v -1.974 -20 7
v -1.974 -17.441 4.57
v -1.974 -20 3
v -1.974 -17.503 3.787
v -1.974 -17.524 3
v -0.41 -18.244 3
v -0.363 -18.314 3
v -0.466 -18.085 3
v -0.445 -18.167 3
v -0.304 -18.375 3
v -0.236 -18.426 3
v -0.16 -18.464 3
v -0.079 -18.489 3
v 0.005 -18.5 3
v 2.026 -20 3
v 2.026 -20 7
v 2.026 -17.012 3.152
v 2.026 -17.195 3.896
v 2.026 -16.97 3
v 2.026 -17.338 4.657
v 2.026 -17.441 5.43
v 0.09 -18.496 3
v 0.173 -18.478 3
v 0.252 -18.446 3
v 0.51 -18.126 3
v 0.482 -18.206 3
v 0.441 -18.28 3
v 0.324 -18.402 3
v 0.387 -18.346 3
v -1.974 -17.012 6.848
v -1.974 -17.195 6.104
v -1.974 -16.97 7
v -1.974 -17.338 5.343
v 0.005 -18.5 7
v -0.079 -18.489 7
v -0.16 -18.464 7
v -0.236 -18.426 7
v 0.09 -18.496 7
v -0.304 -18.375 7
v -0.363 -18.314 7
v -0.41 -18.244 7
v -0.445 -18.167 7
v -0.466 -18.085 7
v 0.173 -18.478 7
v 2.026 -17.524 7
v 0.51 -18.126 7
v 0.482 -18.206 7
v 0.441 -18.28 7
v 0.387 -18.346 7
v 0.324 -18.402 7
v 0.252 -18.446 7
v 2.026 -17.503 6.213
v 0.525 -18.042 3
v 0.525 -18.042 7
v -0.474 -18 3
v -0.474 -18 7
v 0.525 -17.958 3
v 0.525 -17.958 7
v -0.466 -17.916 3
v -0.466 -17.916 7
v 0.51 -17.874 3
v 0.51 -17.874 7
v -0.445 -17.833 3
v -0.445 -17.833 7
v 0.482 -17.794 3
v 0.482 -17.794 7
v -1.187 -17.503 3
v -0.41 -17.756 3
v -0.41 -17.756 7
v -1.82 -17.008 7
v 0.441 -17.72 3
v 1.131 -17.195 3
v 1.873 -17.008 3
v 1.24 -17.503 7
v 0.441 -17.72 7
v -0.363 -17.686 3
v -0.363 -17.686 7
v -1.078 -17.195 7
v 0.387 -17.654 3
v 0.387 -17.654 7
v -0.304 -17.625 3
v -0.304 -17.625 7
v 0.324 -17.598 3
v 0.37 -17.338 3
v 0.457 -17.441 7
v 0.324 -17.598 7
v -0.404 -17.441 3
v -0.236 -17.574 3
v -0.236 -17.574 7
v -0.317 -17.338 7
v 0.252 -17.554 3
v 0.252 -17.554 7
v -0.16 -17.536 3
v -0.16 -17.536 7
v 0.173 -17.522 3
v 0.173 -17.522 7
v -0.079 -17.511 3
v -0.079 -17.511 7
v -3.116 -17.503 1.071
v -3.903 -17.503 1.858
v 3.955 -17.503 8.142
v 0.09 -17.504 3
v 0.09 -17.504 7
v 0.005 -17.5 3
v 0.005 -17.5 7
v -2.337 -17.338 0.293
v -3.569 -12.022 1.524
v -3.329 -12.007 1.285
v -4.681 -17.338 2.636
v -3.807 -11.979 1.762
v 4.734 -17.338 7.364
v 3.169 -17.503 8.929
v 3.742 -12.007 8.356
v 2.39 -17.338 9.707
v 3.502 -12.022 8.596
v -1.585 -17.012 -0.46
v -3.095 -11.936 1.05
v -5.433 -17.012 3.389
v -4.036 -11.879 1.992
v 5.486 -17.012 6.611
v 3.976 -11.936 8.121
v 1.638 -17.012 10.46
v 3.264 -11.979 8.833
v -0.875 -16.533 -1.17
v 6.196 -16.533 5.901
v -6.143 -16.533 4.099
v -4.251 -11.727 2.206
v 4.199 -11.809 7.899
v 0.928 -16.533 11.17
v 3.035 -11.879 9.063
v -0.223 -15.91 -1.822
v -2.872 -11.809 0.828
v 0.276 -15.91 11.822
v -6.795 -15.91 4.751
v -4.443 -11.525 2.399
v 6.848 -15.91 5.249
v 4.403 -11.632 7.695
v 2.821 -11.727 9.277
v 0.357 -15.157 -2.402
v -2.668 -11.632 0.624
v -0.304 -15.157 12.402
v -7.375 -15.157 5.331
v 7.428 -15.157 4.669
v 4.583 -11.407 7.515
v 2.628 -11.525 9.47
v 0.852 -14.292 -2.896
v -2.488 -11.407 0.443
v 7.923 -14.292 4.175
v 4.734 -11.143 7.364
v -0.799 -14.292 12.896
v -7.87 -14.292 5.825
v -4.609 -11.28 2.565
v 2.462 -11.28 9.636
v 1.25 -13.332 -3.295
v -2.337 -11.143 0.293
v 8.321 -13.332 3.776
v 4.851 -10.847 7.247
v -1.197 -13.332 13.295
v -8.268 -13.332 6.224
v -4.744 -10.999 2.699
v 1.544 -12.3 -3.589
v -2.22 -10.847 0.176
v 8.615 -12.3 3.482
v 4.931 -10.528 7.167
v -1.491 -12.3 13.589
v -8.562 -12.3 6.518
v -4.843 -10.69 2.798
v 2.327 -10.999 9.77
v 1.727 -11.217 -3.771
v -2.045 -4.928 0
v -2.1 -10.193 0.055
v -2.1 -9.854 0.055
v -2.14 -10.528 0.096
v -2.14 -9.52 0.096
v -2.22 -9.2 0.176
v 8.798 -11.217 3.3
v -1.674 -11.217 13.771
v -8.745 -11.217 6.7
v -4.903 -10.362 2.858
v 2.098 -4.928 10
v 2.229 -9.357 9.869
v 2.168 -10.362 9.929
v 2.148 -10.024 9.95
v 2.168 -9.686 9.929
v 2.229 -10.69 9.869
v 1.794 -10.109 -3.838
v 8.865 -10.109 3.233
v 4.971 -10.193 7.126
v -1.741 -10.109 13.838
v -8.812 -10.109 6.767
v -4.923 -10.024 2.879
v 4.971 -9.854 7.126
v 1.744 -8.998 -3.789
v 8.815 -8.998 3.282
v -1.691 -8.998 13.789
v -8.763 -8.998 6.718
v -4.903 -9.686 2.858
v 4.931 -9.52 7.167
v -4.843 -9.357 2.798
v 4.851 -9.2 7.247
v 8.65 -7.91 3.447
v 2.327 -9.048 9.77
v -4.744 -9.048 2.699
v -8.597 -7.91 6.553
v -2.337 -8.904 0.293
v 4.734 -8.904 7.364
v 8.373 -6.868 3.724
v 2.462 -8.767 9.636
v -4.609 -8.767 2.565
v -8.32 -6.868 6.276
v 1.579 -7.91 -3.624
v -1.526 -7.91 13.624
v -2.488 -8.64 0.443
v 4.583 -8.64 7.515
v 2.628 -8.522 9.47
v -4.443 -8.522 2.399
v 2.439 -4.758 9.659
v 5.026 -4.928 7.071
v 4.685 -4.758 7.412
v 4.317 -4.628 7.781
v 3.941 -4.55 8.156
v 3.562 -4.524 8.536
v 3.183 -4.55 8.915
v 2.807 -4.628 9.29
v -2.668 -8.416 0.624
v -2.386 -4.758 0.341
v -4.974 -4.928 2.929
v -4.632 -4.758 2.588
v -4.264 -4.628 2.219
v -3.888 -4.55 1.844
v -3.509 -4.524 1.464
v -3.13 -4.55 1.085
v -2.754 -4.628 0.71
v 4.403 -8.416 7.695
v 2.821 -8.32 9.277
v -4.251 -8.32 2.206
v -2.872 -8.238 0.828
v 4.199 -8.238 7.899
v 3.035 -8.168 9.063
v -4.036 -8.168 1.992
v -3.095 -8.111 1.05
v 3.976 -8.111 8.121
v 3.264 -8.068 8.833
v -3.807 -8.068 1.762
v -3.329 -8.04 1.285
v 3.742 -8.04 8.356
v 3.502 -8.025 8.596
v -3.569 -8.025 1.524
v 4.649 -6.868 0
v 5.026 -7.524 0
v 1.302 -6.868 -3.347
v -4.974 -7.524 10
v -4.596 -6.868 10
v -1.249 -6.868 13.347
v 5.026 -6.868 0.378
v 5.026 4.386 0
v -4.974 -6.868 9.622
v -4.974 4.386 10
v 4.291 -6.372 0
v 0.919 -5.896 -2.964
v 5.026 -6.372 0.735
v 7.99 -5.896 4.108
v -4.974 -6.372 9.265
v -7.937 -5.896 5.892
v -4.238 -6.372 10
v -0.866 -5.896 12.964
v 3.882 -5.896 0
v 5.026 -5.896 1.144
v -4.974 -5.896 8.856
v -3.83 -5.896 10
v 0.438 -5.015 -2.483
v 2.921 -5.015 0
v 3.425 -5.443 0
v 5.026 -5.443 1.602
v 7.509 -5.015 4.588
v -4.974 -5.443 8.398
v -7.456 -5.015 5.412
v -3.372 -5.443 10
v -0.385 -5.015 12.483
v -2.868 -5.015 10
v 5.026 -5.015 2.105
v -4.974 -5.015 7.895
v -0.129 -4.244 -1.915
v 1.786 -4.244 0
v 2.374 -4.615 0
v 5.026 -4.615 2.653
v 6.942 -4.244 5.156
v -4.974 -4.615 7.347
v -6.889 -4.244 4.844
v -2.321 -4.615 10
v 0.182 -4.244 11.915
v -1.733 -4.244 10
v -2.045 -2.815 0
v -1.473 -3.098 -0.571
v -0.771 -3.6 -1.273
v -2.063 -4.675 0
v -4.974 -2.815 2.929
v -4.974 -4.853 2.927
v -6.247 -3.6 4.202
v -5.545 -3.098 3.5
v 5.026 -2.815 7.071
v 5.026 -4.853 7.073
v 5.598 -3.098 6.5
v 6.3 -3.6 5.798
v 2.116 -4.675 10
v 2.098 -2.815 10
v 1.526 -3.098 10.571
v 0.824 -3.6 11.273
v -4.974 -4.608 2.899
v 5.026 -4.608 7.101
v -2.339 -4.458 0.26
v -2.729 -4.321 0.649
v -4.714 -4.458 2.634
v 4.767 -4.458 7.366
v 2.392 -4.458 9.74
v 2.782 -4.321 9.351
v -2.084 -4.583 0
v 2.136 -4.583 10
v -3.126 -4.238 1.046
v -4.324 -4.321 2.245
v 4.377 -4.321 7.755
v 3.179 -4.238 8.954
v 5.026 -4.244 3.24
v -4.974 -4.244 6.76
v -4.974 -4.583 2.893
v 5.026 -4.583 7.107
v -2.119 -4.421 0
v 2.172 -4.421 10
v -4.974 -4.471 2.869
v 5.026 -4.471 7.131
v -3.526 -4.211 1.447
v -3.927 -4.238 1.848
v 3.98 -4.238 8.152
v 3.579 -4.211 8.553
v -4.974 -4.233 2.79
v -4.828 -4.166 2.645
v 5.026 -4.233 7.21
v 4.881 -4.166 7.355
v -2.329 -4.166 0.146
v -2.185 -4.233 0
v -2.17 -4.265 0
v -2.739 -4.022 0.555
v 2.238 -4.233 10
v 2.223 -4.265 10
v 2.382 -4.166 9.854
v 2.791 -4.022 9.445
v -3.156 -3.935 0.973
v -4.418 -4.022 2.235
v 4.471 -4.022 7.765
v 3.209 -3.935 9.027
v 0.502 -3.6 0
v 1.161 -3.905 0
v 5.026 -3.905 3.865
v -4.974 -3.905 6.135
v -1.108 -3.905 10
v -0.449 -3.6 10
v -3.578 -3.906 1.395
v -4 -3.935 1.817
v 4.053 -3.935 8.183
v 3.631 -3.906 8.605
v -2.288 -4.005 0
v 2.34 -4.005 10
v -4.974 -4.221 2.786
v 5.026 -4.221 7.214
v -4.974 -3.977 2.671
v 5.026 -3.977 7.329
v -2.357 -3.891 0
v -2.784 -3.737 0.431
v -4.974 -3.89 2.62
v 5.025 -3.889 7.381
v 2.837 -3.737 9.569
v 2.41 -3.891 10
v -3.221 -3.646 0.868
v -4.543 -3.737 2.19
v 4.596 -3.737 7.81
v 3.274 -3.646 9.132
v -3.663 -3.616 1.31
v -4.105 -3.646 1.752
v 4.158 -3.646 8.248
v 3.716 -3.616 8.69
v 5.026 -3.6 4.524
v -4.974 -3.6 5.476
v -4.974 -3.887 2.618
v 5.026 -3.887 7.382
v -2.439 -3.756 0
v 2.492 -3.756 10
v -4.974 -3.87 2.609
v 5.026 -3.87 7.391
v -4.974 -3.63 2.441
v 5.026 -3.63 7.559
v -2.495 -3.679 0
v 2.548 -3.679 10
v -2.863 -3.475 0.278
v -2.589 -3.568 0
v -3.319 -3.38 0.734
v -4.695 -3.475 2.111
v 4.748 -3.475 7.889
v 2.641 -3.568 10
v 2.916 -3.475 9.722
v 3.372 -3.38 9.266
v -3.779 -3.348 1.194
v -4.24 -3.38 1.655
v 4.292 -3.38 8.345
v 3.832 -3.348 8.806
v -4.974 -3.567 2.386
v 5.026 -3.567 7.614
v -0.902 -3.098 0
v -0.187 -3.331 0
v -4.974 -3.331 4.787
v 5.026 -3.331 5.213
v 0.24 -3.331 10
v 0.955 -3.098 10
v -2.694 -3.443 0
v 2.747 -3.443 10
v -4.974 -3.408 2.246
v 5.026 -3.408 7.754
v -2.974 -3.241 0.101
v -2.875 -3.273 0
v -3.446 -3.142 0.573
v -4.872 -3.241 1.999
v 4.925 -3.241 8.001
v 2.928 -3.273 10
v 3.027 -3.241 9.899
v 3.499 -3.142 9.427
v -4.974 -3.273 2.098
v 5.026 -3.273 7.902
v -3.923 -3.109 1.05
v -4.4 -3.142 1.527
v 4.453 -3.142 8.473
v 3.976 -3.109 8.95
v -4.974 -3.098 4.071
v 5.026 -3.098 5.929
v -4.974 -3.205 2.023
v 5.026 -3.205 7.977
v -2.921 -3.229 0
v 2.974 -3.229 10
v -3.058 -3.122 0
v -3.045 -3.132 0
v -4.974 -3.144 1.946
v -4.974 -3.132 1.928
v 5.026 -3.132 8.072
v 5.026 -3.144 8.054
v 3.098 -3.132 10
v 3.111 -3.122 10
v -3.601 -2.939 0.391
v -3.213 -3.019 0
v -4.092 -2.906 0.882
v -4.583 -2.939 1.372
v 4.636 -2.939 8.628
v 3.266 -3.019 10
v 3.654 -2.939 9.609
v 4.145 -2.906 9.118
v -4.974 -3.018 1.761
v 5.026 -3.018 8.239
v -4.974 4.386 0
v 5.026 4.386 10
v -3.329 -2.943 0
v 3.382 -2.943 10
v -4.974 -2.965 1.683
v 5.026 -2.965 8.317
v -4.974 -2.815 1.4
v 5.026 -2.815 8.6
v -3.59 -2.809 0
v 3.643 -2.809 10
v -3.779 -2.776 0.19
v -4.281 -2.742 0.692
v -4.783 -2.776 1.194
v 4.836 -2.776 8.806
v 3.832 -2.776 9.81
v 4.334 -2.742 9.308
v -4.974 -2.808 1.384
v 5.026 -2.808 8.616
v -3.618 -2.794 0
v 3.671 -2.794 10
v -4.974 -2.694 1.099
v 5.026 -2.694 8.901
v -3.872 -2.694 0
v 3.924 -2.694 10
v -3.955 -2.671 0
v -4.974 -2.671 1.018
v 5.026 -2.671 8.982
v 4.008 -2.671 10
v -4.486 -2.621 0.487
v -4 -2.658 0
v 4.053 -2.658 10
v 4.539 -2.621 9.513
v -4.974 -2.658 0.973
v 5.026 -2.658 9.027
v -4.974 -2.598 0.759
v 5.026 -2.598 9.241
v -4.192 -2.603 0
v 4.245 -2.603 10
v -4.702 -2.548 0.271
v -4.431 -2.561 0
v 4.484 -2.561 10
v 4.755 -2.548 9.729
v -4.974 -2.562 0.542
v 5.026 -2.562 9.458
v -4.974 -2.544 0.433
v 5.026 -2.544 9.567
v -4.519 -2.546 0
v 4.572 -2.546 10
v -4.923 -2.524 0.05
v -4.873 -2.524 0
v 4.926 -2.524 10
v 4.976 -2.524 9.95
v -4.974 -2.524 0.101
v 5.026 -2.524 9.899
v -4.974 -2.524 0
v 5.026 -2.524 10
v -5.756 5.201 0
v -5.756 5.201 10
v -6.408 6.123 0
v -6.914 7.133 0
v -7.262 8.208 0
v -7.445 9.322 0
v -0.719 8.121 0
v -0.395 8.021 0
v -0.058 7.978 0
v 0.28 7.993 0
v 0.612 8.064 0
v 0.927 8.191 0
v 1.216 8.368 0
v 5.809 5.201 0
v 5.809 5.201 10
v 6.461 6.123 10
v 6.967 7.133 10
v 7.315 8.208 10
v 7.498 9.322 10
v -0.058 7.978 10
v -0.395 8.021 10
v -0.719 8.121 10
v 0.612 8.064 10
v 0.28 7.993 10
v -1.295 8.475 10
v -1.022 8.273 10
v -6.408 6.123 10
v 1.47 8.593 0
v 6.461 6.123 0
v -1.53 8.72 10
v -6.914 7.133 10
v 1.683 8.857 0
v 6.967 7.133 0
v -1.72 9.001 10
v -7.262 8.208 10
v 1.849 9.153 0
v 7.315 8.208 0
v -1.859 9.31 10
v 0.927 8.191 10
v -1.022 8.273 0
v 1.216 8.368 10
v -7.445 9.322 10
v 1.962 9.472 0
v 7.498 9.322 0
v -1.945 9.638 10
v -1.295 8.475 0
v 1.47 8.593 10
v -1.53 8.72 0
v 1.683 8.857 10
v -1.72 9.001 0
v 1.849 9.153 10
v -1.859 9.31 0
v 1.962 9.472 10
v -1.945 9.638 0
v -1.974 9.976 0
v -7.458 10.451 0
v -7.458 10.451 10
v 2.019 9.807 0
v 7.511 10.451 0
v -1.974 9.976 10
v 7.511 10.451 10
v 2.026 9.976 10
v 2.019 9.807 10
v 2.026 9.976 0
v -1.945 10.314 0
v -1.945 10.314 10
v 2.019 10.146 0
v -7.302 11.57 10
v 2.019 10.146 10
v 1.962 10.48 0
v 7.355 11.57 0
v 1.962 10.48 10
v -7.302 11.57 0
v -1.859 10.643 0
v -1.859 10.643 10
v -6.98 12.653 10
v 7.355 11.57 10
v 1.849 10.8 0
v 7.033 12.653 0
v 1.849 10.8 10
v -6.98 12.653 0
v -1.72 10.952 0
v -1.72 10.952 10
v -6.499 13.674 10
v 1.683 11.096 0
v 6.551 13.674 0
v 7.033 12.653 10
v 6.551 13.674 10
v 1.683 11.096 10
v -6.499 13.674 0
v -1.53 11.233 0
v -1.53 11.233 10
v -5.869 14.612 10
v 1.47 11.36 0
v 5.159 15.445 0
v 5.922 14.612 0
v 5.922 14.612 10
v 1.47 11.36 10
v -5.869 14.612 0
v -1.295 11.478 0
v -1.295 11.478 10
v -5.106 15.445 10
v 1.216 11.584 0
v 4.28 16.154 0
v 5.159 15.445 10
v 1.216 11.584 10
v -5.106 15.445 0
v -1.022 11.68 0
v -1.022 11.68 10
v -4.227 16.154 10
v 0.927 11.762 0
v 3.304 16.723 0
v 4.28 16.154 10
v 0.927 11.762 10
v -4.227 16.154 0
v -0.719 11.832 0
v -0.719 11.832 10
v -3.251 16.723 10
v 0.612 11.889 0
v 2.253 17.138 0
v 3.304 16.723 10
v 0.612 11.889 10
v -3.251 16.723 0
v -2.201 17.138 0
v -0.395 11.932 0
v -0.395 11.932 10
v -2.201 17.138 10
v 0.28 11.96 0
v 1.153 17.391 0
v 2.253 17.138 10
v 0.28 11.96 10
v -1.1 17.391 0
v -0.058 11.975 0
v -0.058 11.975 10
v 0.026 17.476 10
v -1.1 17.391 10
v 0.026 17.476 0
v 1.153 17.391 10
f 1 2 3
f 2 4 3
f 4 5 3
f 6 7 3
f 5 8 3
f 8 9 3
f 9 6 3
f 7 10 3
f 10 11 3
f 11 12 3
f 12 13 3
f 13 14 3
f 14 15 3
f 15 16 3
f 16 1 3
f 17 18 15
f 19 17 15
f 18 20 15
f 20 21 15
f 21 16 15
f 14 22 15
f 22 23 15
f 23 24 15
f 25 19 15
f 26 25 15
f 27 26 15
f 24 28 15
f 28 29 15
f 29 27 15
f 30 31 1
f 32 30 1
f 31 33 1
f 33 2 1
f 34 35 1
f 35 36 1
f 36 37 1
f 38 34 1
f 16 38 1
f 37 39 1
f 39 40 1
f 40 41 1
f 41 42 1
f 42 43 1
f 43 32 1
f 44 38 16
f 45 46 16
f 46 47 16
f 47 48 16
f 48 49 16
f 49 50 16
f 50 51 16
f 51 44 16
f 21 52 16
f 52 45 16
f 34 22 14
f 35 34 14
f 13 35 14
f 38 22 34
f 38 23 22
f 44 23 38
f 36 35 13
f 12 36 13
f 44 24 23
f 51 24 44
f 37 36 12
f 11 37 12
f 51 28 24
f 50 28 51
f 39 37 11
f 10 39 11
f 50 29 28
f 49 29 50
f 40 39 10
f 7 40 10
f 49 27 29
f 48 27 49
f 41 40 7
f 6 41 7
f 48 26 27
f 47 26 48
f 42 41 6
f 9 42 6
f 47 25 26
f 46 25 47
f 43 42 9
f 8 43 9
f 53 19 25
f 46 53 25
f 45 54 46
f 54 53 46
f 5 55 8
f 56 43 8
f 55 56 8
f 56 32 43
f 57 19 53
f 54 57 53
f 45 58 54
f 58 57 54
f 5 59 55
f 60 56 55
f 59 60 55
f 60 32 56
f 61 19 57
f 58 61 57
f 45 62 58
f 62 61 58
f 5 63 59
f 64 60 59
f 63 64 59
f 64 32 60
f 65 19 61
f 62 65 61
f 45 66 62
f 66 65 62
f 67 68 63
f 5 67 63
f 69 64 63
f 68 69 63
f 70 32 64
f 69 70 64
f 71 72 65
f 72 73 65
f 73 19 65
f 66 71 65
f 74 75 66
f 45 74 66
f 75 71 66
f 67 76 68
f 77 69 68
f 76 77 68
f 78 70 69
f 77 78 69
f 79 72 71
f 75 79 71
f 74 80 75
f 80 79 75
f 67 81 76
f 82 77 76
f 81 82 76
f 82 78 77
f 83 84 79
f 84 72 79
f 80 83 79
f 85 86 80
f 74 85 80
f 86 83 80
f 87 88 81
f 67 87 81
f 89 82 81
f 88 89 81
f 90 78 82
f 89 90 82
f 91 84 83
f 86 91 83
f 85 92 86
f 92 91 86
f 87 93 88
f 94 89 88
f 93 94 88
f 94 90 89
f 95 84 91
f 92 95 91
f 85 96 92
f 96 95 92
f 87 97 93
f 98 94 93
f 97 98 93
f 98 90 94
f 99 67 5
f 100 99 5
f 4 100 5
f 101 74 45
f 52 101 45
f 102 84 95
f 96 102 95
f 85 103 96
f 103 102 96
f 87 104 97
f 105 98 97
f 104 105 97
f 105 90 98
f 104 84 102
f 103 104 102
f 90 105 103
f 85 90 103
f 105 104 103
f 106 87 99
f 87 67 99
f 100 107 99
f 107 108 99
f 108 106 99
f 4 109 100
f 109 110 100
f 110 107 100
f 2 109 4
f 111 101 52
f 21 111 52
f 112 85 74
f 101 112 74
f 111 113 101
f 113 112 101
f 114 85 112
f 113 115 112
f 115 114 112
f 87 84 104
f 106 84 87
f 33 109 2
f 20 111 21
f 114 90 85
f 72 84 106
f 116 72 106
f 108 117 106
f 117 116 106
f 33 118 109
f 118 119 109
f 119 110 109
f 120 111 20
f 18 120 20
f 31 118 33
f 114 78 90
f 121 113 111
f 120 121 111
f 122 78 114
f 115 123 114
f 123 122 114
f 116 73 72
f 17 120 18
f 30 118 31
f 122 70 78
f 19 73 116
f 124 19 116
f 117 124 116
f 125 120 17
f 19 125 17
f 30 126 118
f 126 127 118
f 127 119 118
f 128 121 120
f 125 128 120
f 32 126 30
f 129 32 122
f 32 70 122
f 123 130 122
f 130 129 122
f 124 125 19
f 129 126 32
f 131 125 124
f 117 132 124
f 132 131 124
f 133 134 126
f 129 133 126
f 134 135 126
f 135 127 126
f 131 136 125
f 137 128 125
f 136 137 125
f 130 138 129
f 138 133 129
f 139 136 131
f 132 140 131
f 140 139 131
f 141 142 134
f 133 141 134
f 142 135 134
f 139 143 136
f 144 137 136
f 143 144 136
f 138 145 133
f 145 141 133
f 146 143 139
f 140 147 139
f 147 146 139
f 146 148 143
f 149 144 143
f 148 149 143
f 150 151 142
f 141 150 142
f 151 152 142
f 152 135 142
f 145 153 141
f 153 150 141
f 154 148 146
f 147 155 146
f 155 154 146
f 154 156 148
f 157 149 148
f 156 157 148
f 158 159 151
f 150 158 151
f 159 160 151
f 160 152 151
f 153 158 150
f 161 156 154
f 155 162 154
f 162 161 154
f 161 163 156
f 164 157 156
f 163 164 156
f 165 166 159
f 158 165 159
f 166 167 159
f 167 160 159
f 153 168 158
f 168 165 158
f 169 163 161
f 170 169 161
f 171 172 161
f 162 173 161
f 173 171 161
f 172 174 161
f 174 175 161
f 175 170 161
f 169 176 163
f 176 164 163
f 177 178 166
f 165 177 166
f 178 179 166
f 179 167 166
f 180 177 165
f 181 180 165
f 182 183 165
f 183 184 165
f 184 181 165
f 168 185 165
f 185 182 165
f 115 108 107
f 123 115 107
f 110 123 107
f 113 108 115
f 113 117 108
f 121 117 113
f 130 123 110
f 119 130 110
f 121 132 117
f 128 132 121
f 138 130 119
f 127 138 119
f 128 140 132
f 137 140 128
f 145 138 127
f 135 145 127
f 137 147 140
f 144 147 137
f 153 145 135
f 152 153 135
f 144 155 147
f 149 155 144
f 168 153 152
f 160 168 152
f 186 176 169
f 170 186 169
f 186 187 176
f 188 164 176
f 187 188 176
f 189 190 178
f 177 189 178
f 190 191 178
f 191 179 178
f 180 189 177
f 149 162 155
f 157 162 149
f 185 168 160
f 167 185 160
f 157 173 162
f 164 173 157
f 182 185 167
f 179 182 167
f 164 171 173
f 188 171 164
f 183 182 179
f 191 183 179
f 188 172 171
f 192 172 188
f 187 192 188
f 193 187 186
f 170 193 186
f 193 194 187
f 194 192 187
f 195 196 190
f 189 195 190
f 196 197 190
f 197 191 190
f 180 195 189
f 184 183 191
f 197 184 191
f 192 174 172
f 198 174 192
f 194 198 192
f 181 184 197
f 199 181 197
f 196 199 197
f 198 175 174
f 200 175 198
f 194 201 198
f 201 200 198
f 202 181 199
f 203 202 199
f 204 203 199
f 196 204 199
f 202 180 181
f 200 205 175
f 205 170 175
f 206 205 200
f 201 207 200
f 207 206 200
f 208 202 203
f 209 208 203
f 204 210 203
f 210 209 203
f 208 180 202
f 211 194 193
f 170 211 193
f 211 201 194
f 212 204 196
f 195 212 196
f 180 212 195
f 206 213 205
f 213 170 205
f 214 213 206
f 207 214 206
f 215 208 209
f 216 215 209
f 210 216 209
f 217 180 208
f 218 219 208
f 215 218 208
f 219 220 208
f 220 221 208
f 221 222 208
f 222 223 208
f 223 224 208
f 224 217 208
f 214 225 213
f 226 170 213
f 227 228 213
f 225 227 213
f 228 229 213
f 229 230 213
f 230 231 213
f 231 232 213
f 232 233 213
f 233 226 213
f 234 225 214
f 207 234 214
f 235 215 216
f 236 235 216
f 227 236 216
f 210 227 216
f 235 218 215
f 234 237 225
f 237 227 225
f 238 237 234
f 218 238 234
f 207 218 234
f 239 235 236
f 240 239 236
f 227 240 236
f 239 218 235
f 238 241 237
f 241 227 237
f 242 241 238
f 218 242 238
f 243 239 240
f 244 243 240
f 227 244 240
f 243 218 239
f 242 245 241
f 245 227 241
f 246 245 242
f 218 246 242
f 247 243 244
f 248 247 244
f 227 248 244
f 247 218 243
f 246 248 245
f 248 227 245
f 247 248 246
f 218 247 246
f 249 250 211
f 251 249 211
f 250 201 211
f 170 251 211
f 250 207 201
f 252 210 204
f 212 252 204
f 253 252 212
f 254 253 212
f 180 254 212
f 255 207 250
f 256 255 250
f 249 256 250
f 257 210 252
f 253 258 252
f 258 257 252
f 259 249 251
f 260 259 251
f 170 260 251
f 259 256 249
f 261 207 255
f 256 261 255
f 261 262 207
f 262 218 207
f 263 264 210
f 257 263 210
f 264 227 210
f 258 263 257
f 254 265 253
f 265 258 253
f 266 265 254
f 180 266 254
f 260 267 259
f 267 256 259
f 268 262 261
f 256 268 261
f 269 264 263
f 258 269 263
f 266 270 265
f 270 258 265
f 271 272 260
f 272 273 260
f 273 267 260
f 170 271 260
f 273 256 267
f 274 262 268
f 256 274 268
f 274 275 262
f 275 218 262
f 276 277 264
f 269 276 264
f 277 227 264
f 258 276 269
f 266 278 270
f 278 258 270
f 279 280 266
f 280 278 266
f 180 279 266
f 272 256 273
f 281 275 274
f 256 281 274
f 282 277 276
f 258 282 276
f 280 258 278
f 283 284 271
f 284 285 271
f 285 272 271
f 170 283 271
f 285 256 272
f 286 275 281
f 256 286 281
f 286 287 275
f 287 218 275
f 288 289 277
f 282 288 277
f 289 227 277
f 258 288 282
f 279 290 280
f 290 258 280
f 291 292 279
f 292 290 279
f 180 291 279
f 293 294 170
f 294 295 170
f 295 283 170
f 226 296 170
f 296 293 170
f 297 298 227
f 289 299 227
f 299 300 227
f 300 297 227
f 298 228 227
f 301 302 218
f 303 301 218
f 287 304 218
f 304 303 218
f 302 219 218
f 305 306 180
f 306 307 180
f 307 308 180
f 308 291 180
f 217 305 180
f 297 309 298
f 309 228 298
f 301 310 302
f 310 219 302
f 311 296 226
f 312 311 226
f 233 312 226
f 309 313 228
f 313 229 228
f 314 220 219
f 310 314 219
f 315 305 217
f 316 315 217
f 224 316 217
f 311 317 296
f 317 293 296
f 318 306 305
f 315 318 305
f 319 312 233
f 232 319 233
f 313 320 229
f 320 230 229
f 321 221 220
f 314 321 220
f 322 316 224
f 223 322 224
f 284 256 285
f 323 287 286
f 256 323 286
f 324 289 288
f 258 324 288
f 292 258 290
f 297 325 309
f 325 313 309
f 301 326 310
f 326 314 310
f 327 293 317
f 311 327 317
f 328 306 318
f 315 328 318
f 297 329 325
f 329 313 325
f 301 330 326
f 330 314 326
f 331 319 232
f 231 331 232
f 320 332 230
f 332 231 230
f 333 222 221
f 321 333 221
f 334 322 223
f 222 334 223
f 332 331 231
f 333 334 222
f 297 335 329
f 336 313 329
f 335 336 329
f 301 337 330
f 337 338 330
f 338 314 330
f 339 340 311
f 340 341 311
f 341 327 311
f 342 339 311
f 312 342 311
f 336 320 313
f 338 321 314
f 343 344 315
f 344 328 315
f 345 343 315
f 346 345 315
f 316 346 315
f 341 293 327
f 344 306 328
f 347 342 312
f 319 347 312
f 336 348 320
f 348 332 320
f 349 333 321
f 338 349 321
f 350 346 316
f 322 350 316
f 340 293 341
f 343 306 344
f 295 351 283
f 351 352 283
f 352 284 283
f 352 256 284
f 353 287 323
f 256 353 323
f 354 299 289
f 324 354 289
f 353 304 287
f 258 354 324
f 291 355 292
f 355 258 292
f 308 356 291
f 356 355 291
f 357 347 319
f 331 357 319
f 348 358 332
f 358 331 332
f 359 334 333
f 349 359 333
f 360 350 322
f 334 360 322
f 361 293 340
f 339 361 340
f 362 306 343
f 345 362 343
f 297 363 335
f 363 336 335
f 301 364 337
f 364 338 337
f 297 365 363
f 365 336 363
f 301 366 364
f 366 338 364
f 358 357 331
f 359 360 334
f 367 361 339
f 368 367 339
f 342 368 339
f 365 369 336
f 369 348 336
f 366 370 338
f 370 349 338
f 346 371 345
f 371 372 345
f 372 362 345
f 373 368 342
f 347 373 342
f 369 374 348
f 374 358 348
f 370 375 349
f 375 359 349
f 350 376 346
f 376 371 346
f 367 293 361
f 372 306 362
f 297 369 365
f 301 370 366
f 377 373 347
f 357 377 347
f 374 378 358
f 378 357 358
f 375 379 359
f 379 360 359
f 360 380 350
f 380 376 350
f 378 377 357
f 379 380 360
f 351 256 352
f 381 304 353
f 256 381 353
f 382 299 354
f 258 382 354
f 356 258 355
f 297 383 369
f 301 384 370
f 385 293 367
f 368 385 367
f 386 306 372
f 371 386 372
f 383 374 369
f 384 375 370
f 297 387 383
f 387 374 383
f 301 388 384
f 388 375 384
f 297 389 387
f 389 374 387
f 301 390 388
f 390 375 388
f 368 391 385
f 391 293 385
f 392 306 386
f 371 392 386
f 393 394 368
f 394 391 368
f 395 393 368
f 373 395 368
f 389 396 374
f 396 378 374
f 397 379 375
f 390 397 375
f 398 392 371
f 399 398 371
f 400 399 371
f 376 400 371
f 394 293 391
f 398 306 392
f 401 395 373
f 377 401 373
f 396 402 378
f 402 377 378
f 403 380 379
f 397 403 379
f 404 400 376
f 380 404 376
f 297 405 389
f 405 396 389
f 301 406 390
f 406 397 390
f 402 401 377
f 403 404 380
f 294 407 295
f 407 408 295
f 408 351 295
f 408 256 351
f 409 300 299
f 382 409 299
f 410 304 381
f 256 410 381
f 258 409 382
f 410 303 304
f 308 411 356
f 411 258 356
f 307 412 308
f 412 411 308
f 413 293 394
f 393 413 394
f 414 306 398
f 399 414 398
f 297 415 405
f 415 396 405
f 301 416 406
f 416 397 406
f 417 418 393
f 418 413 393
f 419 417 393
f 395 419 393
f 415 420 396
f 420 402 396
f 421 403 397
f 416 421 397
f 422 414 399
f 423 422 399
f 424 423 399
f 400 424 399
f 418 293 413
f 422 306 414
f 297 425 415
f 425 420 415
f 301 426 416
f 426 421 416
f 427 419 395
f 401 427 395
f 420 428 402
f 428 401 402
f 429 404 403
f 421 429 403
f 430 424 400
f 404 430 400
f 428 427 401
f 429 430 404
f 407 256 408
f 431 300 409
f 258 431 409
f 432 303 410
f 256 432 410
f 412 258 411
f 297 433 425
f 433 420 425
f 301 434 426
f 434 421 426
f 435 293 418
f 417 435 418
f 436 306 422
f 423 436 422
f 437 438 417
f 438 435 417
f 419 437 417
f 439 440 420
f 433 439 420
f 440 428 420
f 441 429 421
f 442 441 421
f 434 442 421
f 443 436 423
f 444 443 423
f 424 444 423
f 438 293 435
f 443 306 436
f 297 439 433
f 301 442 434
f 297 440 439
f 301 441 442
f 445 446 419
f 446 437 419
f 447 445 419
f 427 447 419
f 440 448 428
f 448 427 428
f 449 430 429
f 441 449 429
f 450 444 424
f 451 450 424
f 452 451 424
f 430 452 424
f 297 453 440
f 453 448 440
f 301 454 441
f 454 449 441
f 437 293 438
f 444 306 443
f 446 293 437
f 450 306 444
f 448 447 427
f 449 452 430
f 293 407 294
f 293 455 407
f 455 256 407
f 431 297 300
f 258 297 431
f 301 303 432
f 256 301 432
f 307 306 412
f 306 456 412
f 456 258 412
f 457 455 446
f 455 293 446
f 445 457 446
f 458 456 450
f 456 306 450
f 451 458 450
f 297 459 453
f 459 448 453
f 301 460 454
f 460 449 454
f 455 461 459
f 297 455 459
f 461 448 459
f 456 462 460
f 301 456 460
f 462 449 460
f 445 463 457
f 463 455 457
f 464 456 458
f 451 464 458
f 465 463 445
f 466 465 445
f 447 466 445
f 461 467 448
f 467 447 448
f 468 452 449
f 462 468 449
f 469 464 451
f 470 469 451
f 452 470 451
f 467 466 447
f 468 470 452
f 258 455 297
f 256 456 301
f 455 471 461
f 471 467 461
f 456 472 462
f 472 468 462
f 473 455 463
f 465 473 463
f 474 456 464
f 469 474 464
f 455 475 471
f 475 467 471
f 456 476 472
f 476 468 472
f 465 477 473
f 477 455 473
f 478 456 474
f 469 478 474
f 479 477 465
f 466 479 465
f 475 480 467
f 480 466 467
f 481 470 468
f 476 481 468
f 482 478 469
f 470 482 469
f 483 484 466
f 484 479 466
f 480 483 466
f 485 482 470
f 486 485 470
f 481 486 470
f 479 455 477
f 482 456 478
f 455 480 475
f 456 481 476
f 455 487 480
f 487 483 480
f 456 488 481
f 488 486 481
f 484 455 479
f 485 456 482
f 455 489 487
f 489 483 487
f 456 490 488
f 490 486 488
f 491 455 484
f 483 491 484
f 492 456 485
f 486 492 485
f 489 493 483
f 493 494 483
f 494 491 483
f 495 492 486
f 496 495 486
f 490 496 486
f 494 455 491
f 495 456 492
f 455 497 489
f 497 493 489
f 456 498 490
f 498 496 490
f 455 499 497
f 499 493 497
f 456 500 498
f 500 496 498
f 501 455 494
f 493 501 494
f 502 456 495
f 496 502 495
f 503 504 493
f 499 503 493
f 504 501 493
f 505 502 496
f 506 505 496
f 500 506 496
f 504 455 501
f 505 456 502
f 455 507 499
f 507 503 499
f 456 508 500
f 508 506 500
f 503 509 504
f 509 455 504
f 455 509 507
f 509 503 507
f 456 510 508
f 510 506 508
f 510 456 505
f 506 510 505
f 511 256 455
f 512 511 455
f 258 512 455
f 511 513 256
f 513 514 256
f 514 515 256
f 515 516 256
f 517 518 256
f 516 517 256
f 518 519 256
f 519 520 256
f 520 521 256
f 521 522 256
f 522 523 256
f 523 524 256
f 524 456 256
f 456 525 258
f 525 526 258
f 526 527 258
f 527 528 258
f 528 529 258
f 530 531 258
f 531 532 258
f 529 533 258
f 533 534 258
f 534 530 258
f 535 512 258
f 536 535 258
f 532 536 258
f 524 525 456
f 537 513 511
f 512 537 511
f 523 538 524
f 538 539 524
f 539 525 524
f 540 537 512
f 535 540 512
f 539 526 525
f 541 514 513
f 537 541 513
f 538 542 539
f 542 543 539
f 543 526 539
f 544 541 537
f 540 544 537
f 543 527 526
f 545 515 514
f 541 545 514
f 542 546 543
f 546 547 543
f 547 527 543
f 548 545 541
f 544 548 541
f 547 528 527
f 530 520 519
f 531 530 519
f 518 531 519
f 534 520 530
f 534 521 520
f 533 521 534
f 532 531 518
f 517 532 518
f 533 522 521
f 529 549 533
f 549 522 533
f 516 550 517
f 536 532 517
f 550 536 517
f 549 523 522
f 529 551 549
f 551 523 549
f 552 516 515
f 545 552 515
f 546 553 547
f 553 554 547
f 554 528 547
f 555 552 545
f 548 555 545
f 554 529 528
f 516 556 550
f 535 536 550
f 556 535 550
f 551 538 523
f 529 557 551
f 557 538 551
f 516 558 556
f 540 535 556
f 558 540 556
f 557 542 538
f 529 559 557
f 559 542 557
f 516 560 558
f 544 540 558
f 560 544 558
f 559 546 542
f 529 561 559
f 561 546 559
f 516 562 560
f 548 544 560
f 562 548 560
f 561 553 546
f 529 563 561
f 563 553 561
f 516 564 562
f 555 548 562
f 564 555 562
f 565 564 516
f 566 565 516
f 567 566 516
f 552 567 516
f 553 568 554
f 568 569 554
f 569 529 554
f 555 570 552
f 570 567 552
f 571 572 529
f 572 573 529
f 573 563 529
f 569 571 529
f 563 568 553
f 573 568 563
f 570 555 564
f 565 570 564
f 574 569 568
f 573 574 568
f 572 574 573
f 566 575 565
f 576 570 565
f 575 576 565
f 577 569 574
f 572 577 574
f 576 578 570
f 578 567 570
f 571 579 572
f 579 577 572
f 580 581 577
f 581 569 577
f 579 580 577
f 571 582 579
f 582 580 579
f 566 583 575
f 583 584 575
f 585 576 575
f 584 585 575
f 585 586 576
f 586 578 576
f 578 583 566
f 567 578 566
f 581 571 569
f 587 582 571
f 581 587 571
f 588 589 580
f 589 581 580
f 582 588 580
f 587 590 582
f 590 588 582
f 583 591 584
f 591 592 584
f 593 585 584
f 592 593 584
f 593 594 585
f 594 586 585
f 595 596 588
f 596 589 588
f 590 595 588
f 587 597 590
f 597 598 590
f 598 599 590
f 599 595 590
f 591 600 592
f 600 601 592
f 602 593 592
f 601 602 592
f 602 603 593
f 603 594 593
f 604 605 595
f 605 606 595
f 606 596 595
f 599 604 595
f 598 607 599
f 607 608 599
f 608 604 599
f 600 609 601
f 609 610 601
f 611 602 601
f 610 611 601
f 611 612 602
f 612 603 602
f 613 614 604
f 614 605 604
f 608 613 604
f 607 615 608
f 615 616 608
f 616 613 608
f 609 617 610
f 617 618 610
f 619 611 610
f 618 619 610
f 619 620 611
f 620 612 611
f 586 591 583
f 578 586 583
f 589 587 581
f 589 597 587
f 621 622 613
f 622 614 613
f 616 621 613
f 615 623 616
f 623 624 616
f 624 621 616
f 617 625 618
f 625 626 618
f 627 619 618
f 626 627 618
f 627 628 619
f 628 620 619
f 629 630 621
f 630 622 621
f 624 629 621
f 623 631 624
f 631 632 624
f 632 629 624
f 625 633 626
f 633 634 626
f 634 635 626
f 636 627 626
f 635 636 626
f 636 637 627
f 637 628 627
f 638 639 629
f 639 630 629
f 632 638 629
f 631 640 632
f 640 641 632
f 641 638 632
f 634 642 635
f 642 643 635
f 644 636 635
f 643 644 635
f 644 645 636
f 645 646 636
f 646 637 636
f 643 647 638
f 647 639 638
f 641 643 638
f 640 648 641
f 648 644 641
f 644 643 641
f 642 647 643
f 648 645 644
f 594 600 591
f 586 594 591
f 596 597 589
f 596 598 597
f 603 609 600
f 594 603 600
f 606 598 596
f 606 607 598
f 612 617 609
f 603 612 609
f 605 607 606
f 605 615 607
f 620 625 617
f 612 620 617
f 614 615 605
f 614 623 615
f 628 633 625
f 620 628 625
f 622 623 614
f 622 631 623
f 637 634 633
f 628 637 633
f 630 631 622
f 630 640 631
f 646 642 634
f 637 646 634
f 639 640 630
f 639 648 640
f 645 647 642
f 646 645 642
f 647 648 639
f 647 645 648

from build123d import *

# Parameters (mm, degrees)
SKETCH1_R               = 2
BOSS_EXTRUDE1_DEPTH     = 10
SKETCH6_R               = 7.5
BOSS_EXTRUDE3_DEPTH     = 5
CUT_EXTRUDE4_DEPTH      = 26.013853674
CUT_EXTRUDE4_DEPTH_BACK = 26.013853674
SKETCH7_R               = 2
SKETCH10_R              = 7.5
CUT_EXTRUDE7_DEPTH      = 9
SKETCH11_W              = 4
SKETCH11_H              = 4
BOSS_EXTRUDE4_DEPTH     = 2.5
FILLET1_R               = 2
SKETCH12_R              = 0.5
CUT_EXTRUDE8_DEPTH      = 10


with BuildPart() as part:
    # Sketch1 → Boss-Extrude1 (new body)
    with BuildSketch(Plane.XY):
        with BuildLine():
            Line((5.026455026, -10.023549892), (-4.973544974, -10.023549892))
            Line((-4.973544974, -10.023549892), (-4.973544974, 4.386280164))
            ThreePointArc((-4.973544974, 4.386280164), (0.026455026, 17.476450108), (5.026455026, 4.386280164))
            Line((5.026455026, 4.386280164), (5.026455026, -10.023549892))
        make_face()
        with Locations((0.026455026, 9.976450108)):
            Circle(SKETCH1_R, mode=Mode.SUBTRACT)
    extrude(amount=BOSS_EXTRUDE1_DEPTH)

    # Sketch6 → Boss-Extrude3 (add, symmetric)
    with BuildSketch(Plane(origin=(2.513227513, 0, 2.513227513), x_dir=(-0.7071067811865477, 0, 0.7071067811865475), z_dir=(-0.7071067811865475, 0, -0.7071067811865477))):
        with Locations((3.516827377, -10.023549892)):
            Circle(SKETCH6_R)
    extrude(amount=BOSS_EXTRUDE3_DEPTH, both=True)

    # Sketch7 → Cut-Extrude4 (cut, two sides: drawn at the far end of the back side and taken through both)
    with BuildSketch(Plane(origin=(-1.022306393, 0, -1.022306393), x_dir=(-0.7071067811865476, 0, 0.7071067811865476), z_dir=(-0.7071067811865476, 0, -0.7071067811865476)).offset(-CUT_EXTRUDE4_DEPTH_BACK)):
        with Locations((3.516827377, -10.023549892)):
            Circle(SKETCH7_R)
    extrude(amount=CUT_EXTRUDE4_DEPTH + CUT_EXTRUDE4_DEPTH_BACK, mode=Mode.SUBTRACT)

    # Sketch10 → Cut-Extrude7 (cut)
    with BuildSketch(Plane(origin=(6.048761419, 0, 6.048761419), x_dir=(0.7071067811865476, 0, -0.7071067811865476), z_dir=(0.7071067811865476, 0, 0.7071067811865476))):
        with Locations((-3.516827377, -10.023549892)):
            Circle(SKETCH10_R)
    cut_extrude7 = extrude(amount=CUT_EXTRUDE7_DEPTH, mode=Mode.SUBTRACT)

    # Mirror1: Cut-Extrude7 across plane
    add(cut_extrude7.mirror(Plane(origin=(2.513227513, 0, 2.513227513), x_dir=(-0.7071067811865478, 0, 0.7071067811865472), z_dir=(-0.7071067811865475, 0, -0.7071067811865477))), mode=Mode.SUBTRACT)

    # Sketch11 → Boss-Extrude4 (add, symmetric)
    with BuildSketch(Plane(origin=(0, -17.5, 0), x_dir=(1, 0, 0), z_dir=(0, 1, 0))):
        with Locations((0.026455026, -5)):
            Rectangle(SKETCH11_W, SKETCH11_H)
    extrude(amount=BOSS_EXTRUDE4_DEPTH, both=True)

    # Fillet1
    # the kernel refuses this fillet: 2 mm, written as the material it adds along each edge
    with BuildSketch(Plane(origin=(3.561988932, -10.023549892, 8.535533906), x_dir=(0.5737197168089216, 0.5845437306903406, -0.5737197168089216), z_dir=(0.4133348358712229, -0.8113622045120283, -0.4133348358712229))) as fillet1_piece_1_section:
        with BuildLine():
            CenterArc((7.5 - FILLET1_R, FILLET1_R), FILLET1_R, 270, 90)
            Line((7.5 - FILLET1_R, 0), (7.5, 0))
            Line((7.5, 0), (7.5, FILLET1_R))
        make_face()
    fillet1_piece_1 = revolve(axis=Axis((3.561988932, -10.023549892, 8.535533906), (0.7071067811865476, 0, 0.7071067811865476)), revolution_arc=108.458473571, mode=Mode.PRIVATE)
    fillet1_piece_1 = split(fillet1_piece_1, bisect_by=Plane(origin=(5.026455026, -3.097280079, 8.789305728), z_dir=(-1, 0, 0)), keep=Keep.TOP, mode=Mode.PRIVATE)
    fillet1_piece_1 = split(fillet1_piece_1, bisect_by=Plane(origin=(3.815760609, -3.097280079, 10), z_dir=(0, 0, -1)), keep=Keep.TOP, mode=Mode.PRIVATE)
    add(fillet1_piece_1)
    with BuildSketch(Plane(origin=(-3.509078879, -10.023549892, 1.464466094), x_dir=(0.5737197168089216, 0.584543730690341, -0.5737197168089213), z_dir=(0.4133348358712232, -0.8113622045120281, -0.4133348358712231))) as fillet1_piece_2_section:
        with BuildLine():
            CenterArc((7.5 - FILLET1_R, -FILLET1_R), FILLET1_R, 0, 90)
            Line((7.5 - FILLET1_R, 0), (7.5, 0))
            Line((7.5, 0), (7.5, -FILLET1_R))
        make_face()
    fillet1_piece_2 = revolve(axis=Axis((-3.509078879, -10.023549892, 1.464466094), (0.7071067811865475, 0, 0.7071067811865477)), revolution_arc=108.458473571, mode=Mode.PRIVATE)
    fillet1_piece_2 = split(fillet1_piece_2, bisect_by=Plane(origin=(-3.762850661, -3.097280076, 0), z_dir=(0, 0, 1)), keep=Keep.TOP, mode=Mode.PRIVATE)
    fillet1_piece_2 = split(fillet1_piece_2, bisect_by=Plane(origin=(-4.973544974, -3.097280076, 1.21069445), z_dir=(1, 0, 0)), keep=Keep.TOP, mode=Mode.PRIVATE)
    add(fillet1_piece_2)

    # Sketch12 → Cut-Extrude8 (cut)
    with BuildSketch(Plane(origin=(0, 0, 3), x_dir=(-1, 0, 0), z_dir=(0, 0, -1))):
        with Locations((-0.026455026, -18)):
            Circle(SKETCH12_R)
    extrude(amount=-CUT_EXTRUDE8_DEPTH, mode=Mode.SUBTRACT)


solid = part.part
